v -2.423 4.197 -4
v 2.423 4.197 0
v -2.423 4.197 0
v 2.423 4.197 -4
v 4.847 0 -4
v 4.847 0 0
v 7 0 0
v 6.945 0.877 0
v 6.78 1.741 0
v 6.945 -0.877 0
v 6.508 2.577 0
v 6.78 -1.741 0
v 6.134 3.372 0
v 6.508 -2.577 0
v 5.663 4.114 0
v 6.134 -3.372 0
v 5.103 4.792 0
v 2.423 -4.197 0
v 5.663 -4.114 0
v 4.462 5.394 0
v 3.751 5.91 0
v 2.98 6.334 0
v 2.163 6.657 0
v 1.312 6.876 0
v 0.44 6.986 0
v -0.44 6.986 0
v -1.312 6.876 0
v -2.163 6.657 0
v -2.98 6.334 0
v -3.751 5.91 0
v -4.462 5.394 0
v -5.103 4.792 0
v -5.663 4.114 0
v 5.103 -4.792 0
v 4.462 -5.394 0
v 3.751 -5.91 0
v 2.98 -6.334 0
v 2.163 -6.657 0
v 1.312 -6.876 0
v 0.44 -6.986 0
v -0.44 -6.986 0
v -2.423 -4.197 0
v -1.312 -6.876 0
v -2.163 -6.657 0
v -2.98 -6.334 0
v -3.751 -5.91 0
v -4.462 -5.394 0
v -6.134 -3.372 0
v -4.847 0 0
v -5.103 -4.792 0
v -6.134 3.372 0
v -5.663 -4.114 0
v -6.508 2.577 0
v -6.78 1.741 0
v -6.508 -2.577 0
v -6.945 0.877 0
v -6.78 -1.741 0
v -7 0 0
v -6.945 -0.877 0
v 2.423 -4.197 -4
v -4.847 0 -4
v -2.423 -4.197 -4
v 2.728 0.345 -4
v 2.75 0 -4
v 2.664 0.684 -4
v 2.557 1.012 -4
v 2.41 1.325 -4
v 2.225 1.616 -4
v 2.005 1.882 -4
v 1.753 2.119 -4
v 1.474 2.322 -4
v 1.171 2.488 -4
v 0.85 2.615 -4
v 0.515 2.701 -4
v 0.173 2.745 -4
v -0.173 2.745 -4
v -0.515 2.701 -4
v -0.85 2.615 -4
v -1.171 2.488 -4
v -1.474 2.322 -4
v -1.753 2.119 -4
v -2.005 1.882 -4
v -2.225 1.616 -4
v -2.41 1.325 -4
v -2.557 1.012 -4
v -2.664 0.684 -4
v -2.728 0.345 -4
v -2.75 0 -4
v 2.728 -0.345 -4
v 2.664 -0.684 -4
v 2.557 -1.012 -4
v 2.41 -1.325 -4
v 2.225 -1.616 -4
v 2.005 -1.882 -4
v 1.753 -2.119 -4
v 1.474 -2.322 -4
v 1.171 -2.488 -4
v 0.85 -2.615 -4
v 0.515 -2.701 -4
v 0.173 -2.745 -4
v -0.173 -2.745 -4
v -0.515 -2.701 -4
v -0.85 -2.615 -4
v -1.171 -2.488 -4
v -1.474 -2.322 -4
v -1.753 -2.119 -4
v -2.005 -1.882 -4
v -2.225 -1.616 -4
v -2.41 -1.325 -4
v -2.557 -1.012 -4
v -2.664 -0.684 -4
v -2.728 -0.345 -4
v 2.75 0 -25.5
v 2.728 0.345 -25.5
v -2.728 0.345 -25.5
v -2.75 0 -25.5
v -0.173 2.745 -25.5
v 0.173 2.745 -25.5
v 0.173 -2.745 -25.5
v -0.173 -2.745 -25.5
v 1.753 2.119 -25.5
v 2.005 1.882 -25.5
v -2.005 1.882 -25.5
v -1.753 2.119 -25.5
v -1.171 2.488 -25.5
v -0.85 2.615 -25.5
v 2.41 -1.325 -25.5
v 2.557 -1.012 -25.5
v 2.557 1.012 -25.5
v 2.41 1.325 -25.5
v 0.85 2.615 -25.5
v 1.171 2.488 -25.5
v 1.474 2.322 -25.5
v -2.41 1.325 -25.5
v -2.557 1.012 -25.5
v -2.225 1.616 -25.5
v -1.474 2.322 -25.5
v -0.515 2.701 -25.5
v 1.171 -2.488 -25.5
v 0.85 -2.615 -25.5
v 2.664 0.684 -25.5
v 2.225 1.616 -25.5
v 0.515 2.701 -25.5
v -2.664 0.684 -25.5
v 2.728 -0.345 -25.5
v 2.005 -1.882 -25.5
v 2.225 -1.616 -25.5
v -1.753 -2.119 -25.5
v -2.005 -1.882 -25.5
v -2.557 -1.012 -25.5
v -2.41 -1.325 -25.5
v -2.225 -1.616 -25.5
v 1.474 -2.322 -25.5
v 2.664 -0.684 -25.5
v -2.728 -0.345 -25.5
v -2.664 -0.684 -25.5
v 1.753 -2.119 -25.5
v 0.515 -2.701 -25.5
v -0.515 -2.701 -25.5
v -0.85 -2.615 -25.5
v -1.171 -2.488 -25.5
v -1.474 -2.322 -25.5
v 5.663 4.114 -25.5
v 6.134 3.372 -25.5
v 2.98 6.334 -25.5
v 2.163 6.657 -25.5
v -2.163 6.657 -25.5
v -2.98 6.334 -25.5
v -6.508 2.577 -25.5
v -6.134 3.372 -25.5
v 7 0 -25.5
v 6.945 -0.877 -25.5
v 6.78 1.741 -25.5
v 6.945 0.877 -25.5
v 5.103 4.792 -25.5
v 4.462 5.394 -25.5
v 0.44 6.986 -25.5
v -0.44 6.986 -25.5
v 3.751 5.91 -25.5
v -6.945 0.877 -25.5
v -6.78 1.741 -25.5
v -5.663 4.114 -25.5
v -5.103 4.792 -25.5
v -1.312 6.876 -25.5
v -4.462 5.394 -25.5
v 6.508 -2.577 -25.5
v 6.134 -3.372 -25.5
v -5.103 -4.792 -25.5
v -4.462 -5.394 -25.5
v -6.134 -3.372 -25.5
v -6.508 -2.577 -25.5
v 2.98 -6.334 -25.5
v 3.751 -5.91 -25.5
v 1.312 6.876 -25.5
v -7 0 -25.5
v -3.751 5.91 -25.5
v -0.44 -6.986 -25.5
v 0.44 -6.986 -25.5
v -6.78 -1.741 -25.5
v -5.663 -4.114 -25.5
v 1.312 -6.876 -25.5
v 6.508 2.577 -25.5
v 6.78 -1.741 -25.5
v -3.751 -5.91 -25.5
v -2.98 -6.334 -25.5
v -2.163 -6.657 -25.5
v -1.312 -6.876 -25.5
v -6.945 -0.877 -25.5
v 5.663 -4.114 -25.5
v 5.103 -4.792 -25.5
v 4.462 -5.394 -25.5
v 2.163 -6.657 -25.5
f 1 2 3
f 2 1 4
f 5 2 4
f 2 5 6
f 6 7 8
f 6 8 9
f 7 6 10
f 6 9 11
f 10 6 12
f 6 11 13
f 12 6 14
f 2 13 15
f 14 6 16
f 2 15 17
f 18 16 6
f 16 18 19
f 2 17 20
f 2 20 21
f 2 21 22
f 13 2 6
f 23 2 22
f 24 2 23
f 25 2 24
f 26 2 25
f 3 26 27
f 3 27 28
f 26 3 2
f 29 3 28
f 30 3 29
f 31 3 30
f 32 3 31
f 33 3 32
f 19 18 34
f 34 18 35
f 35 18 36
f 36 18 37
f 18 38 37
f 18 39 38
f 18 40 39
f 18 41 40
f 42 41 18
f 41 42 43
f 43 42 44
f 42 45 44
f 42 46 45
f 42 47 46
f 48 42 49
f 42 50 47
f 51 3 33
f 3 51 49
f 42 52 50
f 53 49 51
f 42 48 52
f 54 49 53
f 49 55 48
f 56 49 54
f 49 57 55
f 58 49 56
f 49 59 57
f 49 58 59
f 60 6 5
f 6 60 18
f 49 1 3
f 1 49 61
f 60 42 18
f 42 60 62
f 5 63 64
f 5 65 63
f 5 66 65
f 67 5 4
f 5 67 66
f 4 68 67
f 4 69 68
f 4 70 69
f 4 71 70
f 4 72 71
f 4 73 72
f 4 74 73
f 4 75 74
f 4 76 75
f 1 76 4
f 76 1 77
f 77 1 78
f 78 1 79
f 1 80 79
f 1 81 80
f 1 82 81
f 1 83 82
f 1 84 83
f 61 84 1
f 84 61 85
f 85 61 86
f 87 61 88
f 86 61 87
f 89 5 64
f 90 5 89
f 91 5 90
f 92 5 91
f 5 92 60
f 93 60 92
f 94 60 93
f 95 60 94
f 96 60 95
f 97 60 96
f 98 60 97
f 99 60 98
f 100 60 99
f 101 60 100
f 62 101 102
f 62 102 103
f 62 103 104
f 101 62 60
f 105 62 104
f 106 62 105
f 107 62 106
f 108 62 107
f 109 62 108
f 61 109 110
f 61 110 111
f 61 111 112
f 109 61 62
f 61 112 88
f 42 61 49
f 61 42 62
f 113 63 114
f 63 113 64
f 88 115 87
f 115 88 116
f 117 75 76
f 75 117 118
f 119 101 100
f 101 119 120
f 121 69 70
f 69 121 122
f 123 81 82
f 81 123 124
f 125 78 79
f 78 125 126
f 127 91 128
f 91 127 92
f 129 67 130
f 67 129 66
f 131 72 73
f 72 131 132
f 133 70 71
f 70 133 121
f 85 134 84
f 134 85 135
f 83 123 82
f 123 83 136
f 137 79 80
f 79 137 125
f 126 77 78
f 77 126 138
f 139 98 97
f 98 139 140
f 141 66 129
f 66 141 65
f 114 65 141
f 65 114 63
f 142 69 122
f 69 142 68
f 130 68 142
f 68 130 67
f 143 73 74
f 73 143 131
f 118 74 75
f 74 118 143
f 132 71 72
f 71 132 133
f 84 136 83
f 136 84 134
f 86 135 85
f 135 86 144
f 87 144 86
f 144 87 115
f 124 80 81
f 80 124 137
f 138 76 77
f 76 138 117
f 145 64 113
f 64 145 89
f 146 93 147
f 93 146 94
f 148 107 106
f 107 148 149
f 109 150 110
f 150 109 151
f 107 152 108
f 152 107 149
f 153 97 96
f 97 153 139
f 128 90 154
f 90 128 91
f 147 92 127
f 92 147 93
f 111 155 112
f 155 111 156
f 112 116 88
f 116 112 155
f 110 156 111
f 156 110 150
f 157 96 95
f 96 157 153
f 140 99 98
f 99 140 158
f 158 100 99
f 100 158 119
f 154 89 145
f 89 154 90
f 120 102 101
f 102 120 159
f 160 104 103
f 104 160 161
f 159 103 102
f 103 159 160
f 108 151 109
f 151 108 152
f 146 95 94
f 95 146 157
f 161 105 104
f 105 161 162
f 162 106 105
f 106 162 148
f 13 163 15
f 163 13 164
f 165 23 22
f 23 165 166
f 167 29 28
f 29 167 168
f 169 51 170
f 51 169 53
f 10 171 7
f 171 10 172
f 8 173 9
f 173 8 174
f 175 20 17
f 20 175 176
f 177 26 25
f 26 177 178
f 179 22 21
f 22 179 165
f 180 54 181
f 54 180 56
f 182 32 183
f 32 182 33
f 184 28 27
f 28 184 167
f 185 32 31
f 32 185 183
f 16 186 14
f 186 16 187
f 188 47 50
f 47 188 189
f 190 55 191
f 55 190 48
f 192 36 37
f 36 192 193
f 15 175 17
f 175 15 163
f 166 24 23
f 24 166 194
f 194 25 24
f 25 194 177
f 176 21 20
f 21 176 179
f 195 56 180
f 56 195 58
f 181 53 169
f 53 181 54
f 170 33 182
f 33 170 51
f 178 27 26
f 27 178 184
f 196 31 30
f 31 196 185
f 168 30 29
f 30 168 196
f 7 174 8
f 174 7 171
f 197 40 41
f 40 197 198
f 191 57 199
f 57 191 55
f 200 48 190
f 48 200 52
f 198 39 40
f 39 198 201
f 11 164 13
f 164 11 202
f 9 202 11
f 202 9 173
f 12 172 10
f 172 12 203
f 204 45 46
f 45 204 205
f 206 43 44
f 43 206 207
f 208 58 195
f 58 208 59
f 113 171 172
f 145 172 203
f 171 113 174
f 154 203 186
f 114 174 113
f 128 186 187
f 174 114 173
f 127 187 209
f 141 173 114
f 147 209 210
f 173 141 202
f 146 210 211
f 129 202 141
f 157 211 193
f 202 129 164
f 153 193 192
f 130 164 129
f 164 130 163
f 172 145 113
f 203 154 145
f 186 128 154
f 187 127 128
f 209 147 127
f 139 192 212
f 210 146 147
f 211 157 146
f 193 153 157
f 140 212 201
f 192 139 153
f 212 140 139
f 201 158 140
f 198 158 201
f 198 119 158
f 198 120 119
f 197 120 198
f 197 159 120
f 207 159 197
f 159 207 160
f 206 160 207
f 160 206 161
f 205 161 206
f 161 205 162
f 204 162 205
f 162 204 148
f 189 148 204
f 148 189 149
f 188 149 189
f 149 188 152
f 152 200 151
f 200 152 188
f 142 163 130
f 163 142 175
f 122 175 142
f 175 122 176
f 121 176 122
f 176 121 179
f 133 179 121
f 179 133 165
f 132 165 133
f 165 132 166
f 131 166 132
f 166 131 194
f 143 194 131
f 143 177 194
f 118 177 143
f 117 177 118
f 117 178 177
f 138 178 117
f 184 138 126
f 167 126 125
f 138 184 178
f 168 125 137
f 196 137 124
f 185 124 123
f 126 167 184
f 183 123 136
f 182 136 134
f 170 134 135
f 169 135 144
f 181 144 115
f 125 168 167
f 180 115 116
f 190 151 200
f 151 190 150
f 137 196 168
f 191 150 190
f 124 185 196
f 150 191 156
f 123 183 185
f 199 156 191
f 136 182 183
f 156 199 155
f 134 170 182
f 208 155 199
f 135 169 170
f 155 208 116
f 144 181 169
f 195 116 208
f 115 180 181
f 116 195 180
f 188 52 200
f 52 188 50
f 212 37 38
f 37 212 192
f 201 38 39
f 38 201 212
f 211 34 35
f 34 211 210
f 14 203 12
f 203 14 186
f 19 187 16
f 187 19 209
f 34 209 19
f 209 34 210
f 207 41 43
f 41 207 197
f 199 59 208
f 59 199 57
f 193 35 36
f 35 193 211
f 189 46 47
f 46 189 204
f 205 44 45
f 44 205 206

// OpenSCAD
$fn = 50;


difference() {
	union() {
		translate(v = [0, 0, -25.5000000000]) {
			cylinder(h = 25.5000000000, r = 7.0000000000);
		}
	}
	union() {
		translate(v = [0, 0, 0]) {
			rotate(a = [0, 0, 0]) {
				difference() {
					union() {
						translate(v = [0, 0, -4]) {
							linear_extrude(height = 4) {
								polygon(points = [[4.8468000000, 0.0000000000], [2.4234000000, 4.1974519271], [-2.4234000000, 4.1974519271], [-4.8468000000, 0.0000000000], [-2.4234000000, -4.1974519271], [2.4234000000, -4.1974519271]]);
							}
						}
					}
					union();
				}
			}
		}
		#translate(v = [0, 0, -100.0000000000]) {
			cylinder(h = 200, r = 2.7500000000);
		}
	}
}
